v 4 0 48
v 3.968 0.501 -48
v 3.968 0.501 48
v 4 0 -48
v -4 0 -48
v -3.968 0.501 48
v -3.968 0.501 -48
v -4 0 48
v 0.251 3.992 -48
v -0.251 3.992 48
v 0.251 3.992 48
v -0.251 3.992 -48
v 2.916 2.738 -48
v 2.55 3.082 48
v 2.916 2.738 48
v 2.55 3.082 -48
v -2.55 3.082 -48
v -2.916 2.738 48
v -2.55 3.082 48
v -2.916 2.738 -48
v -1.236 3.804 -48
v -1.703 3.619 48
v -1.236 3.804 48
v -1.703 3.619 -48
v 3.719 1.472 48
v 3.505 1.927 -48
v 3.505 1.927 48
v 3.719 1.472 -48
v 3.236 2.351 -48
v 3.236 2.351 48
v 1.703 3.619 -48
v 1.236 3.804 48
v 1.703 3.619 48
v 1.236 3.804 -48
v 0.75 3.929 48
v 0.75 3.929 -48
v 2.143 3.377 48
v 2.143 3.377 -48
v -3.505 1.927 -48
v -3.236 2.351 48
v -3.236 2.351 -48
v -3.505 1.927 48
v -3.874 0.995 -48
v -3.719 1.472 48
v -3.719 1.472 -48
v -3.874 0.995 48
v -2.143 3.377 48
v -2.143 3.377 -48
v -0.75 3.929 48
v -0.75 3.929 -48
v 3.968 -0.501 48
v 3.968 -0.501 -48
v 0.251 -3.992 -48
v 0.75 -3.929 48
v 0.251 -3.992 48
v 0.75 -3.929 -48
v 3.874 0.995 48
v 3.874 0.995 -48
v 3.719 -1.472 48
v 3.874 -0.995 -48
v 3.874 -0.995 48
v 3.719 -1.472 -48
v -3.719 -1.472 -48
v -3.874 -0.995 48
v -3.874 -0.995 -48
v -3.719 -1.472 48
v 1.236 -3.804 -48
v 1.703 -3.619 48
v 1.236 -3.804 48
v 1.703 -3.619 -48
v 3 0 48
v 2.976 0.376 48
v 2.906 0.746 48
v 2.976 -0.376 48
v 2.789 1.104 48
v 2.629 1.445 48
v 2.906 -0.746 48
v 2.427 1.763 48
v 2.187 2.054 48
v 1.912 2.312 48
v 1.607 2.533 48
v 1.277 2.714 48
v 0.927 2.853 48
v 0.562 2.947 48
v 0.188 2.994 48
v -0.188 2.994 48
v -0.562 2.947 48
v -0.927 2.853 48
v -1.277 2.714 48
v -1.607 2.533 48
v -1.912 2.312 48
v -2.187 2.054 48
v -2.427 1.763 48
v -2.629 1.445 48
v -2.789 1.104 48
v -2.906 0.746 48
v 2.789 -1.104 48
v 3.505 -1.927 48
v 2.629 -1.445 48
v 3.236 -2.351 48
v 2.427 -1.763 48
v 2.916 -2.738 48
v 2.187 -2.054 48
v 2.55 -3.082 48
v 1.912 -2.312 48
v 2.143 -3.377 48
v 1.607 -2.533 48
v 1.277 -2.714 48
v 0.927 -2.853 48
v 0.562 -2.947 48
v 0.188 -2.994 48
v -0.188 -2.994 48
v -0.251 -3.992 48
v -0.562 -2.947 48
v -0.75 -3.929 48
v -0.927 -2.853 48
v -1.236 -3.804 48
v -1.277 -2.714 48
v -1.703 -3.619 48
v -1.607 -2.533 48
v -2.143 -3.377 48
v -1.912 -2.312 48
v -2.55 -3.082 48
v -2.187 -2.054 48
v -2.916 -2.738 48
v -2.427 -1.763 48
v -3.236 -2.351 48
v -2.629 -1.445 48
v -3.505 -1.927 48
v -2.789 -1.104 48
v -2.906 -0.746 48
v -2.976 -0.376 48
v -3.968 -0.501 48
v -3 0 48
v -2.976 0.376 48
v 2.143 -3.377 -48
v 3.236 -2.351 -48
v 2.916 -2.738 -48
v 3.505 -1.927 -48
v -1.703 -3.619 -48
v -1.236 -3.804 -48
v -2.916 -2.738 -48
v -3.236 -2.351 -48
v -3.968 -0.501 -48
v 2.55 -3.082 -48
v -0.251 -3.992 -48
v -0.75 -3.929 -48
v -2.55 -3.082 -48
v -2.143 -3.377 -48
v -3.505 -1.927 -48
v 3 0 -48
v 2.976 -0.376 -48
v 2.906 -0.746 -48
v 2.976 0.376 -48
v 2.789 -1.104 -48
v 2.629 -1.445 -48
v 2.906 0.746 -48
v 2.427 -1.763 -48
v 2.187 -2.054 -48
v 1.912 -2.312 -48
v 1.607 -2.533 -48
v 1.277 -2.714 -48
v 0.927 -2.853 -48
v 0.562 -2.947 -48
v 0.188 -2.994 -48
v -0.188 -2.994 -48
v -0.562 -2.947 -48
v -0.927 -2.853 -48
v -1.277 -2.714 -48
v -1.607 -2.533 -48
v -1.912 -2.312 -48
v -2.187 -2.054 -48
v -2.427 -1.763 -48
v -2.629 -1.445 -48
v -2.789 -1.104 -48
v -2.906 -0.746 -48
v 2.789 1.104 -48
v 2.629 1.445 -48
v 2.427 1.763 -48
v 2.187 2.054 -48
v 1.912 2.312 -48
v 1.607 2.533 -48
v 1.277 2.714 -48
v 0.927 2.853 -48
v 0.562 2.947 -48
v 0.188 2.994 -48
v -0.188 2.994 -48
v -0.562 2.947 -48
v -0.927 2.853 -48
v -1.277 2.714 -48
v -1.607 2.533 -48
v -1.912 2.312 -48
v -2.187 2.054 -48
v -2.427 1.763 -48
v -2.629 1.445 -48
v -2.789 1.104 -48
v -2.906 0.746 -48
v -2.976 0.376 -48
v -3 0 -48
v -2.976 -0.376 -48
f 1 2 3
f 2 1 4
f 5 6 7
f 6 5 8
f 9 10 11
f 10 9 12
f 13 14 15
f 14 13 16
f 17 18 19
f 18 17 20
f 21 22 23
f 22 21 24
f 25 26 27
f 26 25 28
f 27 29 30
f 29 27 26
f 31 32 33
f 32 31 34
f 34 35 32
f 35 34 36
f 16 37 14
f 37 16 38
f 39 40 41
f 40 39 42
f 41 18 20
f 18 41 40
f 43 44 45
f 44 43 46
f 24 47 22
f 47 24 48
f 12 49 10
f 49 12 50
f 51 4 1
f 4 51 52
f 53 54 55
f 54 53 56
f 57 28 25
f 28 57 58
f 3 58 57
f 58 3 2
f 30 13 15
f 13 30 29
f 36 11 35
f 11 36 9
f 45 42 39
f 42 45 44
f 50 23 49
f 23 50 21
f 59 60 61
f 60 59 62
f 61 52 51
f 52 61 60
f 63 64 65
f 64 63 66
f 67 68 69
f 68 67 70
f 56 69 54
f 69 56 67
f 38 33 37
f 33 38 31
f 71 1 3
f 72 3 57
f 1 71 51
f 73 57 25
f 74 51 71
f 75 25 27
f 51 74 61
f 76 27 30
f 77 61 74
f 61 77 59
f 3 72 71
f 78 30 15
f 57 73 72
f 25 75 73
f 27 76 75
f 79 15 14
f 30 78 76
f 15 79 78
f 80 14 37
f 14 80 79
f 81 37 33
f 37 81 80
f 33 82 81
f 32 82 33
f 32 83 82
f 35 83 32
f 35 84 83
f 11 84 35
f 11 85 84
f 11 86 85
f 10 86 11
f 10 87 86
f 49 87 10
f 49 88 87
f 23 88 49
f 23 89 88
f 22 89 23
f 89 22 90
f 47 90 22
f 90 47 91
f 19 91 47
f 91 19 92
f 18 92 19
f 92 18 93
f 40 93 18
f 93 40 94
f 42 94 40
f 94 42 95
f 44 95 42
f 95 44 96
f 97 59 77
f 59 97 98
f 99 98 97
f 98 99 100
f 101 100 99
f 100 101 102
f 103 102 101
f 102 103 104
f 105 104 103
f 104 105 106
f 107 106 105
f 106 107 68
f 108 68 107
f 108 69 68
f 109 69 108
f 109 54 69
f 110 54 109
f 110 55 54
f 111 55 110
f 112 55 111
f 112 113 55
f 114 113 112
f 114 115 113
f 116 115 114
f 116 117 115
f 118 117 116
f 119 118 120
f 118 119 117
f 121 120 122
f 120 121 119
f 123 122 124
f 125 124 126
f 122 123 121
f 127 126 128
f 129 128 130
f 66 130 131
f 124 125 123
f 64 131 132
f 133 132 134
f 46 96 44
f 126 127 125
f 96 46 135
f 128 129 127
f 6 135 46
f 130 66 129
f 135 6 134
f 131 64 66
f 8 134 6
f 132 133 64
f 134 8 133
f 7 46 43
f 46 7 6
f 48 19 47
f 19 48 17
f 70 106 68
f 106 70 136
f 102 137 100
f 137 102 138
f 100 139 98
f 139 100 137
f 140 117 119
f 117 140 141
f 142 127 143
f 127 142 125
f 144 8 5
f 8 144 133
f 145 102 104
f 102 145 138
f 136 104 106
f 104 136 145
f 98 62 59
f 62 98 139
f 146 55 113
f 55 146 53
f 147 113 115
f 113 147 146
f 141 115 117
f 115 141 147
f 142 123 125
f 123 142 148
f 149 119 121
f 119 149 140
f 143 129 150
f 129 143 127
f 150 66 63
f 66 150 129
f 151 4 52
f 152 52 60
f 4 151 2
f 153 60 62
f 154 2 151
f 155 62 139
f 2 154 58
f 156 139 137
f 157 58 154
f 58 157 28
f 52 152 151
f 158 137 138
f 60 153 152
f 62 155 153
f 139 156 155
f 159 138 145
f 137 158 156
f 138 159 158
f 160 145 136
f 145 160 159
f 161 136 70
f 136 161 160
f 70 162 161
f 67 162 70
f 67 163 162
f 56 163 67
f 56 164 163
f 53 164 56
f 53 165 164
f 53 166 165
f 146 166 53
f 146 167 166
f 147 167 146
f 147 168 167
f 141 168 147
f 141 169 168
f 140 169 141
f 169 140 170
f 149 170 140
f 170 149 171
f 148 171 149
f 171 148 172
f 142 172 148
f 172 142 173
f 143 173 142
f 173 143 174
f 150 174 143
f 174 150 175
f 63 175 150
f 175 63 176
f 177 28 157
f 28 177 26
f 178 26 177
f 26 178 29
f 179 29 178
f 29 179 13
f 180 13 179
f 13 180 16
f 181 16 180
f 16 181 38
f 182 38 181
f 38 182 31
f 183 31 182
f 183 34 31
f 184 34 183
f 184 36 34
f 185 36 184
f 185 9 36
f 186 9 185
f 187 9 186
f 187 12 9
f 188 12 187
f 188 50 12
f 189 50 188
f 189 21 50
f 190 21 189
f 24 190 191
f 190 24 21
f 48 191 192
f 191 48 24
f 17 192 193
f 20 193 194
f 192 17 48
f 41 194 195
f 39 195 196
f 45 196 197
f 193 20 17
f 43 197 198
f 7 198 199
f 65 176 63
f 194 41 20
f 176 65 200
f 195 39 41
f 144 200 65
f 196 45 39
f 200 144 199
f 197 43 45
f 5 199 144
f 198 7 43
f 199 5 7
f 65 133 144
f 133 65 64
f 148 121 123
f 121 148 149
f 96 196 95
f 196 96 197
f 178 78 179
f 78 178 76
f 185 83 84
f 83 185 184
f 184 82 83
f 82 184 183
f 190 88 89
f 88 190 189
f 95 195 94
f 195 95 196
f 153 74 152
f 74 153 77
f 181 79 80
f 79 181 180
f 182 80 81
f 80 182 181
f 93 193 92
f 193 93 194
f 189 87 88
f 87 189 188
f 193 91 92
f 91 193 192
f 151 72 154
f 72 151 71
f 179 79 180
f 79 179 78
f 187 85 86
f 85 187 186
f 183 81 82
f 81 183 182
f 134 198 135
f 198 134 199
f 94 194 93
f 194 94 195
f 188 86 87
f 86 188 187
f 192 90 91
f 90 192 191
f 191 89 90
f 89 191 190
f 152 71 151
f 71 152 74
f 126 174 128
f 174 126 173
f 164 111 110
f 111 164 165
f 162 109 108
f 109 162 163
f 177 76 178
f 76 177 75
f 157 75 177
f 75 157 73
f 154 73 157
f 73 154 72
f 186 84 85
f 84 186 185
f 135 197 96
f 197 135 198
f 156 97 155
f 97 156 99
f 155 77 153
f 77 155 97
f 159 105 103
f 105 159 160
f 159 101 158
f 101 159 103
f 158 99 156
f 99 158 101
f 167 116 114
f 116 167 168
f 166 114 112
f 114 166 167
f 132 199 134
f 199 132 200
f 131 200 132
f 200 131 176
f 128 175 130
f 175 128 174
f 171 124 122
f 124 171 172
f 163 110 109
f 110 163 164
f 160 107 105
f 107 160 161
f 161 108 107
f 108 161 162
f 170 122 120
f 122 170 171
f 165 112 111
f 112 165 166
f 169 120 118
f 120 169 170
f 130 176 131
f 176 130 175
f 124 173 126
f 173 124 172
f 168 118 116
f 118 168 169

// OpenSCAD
$fn = 50;


difference() {
	union() {
		translate(v = [0, 0, -48.0000000000]) {
			cylinder(h = 96, r = 4.0000000000);
		}
	}
	union() {
		translate(v = [0, 0, -100.0000000000]) {
			cylinder(h = 200, r = 3.0000000000);
		}
	}
}
